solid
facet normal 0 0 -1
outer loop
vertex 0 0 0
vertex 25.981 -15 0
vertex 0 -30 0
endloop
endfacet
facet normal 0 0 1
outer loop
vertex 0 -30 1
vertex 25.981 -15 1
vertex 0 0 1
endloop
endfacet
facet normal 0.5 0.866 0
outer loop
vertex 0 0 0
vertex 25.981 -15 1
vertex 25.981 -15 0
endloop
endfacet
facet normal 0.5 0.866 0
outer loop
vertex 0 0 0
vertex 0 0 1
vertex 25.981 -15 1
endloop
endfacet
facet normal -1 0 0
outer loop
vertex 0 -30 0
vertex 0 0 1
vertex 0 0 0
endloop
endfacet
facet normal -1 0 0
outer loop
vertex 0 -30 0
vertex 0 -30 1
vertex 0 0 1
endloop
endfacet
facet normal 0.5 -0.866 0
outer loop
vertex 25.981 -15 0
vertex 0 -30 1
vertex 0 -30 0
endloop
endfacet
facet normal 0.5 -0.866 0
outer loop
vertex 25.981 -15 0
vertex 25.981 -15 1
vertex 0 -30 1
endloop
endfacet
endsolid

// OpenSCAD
// Parameters
$fn = 100; // Increase for smoother curves
edge_length = 30; // Edge length in mm, assuming 3cm as per initial requirement
thickness = 1; // Thickness of the slice in mm

// Pizza slice footprint
module pizzaSliceFootprint() {
    // Drawing the two edges
    rotate([0,0,-90]) // Rotate to start the first edge from the bottom going up
    translate([0,0])
    polygon(points=[[0,0], [edge_length,0], [edge_length*cos(60), edge_length*sin(60)], [0,0]]);
}

// Extruding the footprint to create the slice
module pizzaSlice() {
    linear_extrude(height = thickness) {
        pizzaSliceFootprint();
    }
}

// Render the pizza slice
pizzaSlice();
